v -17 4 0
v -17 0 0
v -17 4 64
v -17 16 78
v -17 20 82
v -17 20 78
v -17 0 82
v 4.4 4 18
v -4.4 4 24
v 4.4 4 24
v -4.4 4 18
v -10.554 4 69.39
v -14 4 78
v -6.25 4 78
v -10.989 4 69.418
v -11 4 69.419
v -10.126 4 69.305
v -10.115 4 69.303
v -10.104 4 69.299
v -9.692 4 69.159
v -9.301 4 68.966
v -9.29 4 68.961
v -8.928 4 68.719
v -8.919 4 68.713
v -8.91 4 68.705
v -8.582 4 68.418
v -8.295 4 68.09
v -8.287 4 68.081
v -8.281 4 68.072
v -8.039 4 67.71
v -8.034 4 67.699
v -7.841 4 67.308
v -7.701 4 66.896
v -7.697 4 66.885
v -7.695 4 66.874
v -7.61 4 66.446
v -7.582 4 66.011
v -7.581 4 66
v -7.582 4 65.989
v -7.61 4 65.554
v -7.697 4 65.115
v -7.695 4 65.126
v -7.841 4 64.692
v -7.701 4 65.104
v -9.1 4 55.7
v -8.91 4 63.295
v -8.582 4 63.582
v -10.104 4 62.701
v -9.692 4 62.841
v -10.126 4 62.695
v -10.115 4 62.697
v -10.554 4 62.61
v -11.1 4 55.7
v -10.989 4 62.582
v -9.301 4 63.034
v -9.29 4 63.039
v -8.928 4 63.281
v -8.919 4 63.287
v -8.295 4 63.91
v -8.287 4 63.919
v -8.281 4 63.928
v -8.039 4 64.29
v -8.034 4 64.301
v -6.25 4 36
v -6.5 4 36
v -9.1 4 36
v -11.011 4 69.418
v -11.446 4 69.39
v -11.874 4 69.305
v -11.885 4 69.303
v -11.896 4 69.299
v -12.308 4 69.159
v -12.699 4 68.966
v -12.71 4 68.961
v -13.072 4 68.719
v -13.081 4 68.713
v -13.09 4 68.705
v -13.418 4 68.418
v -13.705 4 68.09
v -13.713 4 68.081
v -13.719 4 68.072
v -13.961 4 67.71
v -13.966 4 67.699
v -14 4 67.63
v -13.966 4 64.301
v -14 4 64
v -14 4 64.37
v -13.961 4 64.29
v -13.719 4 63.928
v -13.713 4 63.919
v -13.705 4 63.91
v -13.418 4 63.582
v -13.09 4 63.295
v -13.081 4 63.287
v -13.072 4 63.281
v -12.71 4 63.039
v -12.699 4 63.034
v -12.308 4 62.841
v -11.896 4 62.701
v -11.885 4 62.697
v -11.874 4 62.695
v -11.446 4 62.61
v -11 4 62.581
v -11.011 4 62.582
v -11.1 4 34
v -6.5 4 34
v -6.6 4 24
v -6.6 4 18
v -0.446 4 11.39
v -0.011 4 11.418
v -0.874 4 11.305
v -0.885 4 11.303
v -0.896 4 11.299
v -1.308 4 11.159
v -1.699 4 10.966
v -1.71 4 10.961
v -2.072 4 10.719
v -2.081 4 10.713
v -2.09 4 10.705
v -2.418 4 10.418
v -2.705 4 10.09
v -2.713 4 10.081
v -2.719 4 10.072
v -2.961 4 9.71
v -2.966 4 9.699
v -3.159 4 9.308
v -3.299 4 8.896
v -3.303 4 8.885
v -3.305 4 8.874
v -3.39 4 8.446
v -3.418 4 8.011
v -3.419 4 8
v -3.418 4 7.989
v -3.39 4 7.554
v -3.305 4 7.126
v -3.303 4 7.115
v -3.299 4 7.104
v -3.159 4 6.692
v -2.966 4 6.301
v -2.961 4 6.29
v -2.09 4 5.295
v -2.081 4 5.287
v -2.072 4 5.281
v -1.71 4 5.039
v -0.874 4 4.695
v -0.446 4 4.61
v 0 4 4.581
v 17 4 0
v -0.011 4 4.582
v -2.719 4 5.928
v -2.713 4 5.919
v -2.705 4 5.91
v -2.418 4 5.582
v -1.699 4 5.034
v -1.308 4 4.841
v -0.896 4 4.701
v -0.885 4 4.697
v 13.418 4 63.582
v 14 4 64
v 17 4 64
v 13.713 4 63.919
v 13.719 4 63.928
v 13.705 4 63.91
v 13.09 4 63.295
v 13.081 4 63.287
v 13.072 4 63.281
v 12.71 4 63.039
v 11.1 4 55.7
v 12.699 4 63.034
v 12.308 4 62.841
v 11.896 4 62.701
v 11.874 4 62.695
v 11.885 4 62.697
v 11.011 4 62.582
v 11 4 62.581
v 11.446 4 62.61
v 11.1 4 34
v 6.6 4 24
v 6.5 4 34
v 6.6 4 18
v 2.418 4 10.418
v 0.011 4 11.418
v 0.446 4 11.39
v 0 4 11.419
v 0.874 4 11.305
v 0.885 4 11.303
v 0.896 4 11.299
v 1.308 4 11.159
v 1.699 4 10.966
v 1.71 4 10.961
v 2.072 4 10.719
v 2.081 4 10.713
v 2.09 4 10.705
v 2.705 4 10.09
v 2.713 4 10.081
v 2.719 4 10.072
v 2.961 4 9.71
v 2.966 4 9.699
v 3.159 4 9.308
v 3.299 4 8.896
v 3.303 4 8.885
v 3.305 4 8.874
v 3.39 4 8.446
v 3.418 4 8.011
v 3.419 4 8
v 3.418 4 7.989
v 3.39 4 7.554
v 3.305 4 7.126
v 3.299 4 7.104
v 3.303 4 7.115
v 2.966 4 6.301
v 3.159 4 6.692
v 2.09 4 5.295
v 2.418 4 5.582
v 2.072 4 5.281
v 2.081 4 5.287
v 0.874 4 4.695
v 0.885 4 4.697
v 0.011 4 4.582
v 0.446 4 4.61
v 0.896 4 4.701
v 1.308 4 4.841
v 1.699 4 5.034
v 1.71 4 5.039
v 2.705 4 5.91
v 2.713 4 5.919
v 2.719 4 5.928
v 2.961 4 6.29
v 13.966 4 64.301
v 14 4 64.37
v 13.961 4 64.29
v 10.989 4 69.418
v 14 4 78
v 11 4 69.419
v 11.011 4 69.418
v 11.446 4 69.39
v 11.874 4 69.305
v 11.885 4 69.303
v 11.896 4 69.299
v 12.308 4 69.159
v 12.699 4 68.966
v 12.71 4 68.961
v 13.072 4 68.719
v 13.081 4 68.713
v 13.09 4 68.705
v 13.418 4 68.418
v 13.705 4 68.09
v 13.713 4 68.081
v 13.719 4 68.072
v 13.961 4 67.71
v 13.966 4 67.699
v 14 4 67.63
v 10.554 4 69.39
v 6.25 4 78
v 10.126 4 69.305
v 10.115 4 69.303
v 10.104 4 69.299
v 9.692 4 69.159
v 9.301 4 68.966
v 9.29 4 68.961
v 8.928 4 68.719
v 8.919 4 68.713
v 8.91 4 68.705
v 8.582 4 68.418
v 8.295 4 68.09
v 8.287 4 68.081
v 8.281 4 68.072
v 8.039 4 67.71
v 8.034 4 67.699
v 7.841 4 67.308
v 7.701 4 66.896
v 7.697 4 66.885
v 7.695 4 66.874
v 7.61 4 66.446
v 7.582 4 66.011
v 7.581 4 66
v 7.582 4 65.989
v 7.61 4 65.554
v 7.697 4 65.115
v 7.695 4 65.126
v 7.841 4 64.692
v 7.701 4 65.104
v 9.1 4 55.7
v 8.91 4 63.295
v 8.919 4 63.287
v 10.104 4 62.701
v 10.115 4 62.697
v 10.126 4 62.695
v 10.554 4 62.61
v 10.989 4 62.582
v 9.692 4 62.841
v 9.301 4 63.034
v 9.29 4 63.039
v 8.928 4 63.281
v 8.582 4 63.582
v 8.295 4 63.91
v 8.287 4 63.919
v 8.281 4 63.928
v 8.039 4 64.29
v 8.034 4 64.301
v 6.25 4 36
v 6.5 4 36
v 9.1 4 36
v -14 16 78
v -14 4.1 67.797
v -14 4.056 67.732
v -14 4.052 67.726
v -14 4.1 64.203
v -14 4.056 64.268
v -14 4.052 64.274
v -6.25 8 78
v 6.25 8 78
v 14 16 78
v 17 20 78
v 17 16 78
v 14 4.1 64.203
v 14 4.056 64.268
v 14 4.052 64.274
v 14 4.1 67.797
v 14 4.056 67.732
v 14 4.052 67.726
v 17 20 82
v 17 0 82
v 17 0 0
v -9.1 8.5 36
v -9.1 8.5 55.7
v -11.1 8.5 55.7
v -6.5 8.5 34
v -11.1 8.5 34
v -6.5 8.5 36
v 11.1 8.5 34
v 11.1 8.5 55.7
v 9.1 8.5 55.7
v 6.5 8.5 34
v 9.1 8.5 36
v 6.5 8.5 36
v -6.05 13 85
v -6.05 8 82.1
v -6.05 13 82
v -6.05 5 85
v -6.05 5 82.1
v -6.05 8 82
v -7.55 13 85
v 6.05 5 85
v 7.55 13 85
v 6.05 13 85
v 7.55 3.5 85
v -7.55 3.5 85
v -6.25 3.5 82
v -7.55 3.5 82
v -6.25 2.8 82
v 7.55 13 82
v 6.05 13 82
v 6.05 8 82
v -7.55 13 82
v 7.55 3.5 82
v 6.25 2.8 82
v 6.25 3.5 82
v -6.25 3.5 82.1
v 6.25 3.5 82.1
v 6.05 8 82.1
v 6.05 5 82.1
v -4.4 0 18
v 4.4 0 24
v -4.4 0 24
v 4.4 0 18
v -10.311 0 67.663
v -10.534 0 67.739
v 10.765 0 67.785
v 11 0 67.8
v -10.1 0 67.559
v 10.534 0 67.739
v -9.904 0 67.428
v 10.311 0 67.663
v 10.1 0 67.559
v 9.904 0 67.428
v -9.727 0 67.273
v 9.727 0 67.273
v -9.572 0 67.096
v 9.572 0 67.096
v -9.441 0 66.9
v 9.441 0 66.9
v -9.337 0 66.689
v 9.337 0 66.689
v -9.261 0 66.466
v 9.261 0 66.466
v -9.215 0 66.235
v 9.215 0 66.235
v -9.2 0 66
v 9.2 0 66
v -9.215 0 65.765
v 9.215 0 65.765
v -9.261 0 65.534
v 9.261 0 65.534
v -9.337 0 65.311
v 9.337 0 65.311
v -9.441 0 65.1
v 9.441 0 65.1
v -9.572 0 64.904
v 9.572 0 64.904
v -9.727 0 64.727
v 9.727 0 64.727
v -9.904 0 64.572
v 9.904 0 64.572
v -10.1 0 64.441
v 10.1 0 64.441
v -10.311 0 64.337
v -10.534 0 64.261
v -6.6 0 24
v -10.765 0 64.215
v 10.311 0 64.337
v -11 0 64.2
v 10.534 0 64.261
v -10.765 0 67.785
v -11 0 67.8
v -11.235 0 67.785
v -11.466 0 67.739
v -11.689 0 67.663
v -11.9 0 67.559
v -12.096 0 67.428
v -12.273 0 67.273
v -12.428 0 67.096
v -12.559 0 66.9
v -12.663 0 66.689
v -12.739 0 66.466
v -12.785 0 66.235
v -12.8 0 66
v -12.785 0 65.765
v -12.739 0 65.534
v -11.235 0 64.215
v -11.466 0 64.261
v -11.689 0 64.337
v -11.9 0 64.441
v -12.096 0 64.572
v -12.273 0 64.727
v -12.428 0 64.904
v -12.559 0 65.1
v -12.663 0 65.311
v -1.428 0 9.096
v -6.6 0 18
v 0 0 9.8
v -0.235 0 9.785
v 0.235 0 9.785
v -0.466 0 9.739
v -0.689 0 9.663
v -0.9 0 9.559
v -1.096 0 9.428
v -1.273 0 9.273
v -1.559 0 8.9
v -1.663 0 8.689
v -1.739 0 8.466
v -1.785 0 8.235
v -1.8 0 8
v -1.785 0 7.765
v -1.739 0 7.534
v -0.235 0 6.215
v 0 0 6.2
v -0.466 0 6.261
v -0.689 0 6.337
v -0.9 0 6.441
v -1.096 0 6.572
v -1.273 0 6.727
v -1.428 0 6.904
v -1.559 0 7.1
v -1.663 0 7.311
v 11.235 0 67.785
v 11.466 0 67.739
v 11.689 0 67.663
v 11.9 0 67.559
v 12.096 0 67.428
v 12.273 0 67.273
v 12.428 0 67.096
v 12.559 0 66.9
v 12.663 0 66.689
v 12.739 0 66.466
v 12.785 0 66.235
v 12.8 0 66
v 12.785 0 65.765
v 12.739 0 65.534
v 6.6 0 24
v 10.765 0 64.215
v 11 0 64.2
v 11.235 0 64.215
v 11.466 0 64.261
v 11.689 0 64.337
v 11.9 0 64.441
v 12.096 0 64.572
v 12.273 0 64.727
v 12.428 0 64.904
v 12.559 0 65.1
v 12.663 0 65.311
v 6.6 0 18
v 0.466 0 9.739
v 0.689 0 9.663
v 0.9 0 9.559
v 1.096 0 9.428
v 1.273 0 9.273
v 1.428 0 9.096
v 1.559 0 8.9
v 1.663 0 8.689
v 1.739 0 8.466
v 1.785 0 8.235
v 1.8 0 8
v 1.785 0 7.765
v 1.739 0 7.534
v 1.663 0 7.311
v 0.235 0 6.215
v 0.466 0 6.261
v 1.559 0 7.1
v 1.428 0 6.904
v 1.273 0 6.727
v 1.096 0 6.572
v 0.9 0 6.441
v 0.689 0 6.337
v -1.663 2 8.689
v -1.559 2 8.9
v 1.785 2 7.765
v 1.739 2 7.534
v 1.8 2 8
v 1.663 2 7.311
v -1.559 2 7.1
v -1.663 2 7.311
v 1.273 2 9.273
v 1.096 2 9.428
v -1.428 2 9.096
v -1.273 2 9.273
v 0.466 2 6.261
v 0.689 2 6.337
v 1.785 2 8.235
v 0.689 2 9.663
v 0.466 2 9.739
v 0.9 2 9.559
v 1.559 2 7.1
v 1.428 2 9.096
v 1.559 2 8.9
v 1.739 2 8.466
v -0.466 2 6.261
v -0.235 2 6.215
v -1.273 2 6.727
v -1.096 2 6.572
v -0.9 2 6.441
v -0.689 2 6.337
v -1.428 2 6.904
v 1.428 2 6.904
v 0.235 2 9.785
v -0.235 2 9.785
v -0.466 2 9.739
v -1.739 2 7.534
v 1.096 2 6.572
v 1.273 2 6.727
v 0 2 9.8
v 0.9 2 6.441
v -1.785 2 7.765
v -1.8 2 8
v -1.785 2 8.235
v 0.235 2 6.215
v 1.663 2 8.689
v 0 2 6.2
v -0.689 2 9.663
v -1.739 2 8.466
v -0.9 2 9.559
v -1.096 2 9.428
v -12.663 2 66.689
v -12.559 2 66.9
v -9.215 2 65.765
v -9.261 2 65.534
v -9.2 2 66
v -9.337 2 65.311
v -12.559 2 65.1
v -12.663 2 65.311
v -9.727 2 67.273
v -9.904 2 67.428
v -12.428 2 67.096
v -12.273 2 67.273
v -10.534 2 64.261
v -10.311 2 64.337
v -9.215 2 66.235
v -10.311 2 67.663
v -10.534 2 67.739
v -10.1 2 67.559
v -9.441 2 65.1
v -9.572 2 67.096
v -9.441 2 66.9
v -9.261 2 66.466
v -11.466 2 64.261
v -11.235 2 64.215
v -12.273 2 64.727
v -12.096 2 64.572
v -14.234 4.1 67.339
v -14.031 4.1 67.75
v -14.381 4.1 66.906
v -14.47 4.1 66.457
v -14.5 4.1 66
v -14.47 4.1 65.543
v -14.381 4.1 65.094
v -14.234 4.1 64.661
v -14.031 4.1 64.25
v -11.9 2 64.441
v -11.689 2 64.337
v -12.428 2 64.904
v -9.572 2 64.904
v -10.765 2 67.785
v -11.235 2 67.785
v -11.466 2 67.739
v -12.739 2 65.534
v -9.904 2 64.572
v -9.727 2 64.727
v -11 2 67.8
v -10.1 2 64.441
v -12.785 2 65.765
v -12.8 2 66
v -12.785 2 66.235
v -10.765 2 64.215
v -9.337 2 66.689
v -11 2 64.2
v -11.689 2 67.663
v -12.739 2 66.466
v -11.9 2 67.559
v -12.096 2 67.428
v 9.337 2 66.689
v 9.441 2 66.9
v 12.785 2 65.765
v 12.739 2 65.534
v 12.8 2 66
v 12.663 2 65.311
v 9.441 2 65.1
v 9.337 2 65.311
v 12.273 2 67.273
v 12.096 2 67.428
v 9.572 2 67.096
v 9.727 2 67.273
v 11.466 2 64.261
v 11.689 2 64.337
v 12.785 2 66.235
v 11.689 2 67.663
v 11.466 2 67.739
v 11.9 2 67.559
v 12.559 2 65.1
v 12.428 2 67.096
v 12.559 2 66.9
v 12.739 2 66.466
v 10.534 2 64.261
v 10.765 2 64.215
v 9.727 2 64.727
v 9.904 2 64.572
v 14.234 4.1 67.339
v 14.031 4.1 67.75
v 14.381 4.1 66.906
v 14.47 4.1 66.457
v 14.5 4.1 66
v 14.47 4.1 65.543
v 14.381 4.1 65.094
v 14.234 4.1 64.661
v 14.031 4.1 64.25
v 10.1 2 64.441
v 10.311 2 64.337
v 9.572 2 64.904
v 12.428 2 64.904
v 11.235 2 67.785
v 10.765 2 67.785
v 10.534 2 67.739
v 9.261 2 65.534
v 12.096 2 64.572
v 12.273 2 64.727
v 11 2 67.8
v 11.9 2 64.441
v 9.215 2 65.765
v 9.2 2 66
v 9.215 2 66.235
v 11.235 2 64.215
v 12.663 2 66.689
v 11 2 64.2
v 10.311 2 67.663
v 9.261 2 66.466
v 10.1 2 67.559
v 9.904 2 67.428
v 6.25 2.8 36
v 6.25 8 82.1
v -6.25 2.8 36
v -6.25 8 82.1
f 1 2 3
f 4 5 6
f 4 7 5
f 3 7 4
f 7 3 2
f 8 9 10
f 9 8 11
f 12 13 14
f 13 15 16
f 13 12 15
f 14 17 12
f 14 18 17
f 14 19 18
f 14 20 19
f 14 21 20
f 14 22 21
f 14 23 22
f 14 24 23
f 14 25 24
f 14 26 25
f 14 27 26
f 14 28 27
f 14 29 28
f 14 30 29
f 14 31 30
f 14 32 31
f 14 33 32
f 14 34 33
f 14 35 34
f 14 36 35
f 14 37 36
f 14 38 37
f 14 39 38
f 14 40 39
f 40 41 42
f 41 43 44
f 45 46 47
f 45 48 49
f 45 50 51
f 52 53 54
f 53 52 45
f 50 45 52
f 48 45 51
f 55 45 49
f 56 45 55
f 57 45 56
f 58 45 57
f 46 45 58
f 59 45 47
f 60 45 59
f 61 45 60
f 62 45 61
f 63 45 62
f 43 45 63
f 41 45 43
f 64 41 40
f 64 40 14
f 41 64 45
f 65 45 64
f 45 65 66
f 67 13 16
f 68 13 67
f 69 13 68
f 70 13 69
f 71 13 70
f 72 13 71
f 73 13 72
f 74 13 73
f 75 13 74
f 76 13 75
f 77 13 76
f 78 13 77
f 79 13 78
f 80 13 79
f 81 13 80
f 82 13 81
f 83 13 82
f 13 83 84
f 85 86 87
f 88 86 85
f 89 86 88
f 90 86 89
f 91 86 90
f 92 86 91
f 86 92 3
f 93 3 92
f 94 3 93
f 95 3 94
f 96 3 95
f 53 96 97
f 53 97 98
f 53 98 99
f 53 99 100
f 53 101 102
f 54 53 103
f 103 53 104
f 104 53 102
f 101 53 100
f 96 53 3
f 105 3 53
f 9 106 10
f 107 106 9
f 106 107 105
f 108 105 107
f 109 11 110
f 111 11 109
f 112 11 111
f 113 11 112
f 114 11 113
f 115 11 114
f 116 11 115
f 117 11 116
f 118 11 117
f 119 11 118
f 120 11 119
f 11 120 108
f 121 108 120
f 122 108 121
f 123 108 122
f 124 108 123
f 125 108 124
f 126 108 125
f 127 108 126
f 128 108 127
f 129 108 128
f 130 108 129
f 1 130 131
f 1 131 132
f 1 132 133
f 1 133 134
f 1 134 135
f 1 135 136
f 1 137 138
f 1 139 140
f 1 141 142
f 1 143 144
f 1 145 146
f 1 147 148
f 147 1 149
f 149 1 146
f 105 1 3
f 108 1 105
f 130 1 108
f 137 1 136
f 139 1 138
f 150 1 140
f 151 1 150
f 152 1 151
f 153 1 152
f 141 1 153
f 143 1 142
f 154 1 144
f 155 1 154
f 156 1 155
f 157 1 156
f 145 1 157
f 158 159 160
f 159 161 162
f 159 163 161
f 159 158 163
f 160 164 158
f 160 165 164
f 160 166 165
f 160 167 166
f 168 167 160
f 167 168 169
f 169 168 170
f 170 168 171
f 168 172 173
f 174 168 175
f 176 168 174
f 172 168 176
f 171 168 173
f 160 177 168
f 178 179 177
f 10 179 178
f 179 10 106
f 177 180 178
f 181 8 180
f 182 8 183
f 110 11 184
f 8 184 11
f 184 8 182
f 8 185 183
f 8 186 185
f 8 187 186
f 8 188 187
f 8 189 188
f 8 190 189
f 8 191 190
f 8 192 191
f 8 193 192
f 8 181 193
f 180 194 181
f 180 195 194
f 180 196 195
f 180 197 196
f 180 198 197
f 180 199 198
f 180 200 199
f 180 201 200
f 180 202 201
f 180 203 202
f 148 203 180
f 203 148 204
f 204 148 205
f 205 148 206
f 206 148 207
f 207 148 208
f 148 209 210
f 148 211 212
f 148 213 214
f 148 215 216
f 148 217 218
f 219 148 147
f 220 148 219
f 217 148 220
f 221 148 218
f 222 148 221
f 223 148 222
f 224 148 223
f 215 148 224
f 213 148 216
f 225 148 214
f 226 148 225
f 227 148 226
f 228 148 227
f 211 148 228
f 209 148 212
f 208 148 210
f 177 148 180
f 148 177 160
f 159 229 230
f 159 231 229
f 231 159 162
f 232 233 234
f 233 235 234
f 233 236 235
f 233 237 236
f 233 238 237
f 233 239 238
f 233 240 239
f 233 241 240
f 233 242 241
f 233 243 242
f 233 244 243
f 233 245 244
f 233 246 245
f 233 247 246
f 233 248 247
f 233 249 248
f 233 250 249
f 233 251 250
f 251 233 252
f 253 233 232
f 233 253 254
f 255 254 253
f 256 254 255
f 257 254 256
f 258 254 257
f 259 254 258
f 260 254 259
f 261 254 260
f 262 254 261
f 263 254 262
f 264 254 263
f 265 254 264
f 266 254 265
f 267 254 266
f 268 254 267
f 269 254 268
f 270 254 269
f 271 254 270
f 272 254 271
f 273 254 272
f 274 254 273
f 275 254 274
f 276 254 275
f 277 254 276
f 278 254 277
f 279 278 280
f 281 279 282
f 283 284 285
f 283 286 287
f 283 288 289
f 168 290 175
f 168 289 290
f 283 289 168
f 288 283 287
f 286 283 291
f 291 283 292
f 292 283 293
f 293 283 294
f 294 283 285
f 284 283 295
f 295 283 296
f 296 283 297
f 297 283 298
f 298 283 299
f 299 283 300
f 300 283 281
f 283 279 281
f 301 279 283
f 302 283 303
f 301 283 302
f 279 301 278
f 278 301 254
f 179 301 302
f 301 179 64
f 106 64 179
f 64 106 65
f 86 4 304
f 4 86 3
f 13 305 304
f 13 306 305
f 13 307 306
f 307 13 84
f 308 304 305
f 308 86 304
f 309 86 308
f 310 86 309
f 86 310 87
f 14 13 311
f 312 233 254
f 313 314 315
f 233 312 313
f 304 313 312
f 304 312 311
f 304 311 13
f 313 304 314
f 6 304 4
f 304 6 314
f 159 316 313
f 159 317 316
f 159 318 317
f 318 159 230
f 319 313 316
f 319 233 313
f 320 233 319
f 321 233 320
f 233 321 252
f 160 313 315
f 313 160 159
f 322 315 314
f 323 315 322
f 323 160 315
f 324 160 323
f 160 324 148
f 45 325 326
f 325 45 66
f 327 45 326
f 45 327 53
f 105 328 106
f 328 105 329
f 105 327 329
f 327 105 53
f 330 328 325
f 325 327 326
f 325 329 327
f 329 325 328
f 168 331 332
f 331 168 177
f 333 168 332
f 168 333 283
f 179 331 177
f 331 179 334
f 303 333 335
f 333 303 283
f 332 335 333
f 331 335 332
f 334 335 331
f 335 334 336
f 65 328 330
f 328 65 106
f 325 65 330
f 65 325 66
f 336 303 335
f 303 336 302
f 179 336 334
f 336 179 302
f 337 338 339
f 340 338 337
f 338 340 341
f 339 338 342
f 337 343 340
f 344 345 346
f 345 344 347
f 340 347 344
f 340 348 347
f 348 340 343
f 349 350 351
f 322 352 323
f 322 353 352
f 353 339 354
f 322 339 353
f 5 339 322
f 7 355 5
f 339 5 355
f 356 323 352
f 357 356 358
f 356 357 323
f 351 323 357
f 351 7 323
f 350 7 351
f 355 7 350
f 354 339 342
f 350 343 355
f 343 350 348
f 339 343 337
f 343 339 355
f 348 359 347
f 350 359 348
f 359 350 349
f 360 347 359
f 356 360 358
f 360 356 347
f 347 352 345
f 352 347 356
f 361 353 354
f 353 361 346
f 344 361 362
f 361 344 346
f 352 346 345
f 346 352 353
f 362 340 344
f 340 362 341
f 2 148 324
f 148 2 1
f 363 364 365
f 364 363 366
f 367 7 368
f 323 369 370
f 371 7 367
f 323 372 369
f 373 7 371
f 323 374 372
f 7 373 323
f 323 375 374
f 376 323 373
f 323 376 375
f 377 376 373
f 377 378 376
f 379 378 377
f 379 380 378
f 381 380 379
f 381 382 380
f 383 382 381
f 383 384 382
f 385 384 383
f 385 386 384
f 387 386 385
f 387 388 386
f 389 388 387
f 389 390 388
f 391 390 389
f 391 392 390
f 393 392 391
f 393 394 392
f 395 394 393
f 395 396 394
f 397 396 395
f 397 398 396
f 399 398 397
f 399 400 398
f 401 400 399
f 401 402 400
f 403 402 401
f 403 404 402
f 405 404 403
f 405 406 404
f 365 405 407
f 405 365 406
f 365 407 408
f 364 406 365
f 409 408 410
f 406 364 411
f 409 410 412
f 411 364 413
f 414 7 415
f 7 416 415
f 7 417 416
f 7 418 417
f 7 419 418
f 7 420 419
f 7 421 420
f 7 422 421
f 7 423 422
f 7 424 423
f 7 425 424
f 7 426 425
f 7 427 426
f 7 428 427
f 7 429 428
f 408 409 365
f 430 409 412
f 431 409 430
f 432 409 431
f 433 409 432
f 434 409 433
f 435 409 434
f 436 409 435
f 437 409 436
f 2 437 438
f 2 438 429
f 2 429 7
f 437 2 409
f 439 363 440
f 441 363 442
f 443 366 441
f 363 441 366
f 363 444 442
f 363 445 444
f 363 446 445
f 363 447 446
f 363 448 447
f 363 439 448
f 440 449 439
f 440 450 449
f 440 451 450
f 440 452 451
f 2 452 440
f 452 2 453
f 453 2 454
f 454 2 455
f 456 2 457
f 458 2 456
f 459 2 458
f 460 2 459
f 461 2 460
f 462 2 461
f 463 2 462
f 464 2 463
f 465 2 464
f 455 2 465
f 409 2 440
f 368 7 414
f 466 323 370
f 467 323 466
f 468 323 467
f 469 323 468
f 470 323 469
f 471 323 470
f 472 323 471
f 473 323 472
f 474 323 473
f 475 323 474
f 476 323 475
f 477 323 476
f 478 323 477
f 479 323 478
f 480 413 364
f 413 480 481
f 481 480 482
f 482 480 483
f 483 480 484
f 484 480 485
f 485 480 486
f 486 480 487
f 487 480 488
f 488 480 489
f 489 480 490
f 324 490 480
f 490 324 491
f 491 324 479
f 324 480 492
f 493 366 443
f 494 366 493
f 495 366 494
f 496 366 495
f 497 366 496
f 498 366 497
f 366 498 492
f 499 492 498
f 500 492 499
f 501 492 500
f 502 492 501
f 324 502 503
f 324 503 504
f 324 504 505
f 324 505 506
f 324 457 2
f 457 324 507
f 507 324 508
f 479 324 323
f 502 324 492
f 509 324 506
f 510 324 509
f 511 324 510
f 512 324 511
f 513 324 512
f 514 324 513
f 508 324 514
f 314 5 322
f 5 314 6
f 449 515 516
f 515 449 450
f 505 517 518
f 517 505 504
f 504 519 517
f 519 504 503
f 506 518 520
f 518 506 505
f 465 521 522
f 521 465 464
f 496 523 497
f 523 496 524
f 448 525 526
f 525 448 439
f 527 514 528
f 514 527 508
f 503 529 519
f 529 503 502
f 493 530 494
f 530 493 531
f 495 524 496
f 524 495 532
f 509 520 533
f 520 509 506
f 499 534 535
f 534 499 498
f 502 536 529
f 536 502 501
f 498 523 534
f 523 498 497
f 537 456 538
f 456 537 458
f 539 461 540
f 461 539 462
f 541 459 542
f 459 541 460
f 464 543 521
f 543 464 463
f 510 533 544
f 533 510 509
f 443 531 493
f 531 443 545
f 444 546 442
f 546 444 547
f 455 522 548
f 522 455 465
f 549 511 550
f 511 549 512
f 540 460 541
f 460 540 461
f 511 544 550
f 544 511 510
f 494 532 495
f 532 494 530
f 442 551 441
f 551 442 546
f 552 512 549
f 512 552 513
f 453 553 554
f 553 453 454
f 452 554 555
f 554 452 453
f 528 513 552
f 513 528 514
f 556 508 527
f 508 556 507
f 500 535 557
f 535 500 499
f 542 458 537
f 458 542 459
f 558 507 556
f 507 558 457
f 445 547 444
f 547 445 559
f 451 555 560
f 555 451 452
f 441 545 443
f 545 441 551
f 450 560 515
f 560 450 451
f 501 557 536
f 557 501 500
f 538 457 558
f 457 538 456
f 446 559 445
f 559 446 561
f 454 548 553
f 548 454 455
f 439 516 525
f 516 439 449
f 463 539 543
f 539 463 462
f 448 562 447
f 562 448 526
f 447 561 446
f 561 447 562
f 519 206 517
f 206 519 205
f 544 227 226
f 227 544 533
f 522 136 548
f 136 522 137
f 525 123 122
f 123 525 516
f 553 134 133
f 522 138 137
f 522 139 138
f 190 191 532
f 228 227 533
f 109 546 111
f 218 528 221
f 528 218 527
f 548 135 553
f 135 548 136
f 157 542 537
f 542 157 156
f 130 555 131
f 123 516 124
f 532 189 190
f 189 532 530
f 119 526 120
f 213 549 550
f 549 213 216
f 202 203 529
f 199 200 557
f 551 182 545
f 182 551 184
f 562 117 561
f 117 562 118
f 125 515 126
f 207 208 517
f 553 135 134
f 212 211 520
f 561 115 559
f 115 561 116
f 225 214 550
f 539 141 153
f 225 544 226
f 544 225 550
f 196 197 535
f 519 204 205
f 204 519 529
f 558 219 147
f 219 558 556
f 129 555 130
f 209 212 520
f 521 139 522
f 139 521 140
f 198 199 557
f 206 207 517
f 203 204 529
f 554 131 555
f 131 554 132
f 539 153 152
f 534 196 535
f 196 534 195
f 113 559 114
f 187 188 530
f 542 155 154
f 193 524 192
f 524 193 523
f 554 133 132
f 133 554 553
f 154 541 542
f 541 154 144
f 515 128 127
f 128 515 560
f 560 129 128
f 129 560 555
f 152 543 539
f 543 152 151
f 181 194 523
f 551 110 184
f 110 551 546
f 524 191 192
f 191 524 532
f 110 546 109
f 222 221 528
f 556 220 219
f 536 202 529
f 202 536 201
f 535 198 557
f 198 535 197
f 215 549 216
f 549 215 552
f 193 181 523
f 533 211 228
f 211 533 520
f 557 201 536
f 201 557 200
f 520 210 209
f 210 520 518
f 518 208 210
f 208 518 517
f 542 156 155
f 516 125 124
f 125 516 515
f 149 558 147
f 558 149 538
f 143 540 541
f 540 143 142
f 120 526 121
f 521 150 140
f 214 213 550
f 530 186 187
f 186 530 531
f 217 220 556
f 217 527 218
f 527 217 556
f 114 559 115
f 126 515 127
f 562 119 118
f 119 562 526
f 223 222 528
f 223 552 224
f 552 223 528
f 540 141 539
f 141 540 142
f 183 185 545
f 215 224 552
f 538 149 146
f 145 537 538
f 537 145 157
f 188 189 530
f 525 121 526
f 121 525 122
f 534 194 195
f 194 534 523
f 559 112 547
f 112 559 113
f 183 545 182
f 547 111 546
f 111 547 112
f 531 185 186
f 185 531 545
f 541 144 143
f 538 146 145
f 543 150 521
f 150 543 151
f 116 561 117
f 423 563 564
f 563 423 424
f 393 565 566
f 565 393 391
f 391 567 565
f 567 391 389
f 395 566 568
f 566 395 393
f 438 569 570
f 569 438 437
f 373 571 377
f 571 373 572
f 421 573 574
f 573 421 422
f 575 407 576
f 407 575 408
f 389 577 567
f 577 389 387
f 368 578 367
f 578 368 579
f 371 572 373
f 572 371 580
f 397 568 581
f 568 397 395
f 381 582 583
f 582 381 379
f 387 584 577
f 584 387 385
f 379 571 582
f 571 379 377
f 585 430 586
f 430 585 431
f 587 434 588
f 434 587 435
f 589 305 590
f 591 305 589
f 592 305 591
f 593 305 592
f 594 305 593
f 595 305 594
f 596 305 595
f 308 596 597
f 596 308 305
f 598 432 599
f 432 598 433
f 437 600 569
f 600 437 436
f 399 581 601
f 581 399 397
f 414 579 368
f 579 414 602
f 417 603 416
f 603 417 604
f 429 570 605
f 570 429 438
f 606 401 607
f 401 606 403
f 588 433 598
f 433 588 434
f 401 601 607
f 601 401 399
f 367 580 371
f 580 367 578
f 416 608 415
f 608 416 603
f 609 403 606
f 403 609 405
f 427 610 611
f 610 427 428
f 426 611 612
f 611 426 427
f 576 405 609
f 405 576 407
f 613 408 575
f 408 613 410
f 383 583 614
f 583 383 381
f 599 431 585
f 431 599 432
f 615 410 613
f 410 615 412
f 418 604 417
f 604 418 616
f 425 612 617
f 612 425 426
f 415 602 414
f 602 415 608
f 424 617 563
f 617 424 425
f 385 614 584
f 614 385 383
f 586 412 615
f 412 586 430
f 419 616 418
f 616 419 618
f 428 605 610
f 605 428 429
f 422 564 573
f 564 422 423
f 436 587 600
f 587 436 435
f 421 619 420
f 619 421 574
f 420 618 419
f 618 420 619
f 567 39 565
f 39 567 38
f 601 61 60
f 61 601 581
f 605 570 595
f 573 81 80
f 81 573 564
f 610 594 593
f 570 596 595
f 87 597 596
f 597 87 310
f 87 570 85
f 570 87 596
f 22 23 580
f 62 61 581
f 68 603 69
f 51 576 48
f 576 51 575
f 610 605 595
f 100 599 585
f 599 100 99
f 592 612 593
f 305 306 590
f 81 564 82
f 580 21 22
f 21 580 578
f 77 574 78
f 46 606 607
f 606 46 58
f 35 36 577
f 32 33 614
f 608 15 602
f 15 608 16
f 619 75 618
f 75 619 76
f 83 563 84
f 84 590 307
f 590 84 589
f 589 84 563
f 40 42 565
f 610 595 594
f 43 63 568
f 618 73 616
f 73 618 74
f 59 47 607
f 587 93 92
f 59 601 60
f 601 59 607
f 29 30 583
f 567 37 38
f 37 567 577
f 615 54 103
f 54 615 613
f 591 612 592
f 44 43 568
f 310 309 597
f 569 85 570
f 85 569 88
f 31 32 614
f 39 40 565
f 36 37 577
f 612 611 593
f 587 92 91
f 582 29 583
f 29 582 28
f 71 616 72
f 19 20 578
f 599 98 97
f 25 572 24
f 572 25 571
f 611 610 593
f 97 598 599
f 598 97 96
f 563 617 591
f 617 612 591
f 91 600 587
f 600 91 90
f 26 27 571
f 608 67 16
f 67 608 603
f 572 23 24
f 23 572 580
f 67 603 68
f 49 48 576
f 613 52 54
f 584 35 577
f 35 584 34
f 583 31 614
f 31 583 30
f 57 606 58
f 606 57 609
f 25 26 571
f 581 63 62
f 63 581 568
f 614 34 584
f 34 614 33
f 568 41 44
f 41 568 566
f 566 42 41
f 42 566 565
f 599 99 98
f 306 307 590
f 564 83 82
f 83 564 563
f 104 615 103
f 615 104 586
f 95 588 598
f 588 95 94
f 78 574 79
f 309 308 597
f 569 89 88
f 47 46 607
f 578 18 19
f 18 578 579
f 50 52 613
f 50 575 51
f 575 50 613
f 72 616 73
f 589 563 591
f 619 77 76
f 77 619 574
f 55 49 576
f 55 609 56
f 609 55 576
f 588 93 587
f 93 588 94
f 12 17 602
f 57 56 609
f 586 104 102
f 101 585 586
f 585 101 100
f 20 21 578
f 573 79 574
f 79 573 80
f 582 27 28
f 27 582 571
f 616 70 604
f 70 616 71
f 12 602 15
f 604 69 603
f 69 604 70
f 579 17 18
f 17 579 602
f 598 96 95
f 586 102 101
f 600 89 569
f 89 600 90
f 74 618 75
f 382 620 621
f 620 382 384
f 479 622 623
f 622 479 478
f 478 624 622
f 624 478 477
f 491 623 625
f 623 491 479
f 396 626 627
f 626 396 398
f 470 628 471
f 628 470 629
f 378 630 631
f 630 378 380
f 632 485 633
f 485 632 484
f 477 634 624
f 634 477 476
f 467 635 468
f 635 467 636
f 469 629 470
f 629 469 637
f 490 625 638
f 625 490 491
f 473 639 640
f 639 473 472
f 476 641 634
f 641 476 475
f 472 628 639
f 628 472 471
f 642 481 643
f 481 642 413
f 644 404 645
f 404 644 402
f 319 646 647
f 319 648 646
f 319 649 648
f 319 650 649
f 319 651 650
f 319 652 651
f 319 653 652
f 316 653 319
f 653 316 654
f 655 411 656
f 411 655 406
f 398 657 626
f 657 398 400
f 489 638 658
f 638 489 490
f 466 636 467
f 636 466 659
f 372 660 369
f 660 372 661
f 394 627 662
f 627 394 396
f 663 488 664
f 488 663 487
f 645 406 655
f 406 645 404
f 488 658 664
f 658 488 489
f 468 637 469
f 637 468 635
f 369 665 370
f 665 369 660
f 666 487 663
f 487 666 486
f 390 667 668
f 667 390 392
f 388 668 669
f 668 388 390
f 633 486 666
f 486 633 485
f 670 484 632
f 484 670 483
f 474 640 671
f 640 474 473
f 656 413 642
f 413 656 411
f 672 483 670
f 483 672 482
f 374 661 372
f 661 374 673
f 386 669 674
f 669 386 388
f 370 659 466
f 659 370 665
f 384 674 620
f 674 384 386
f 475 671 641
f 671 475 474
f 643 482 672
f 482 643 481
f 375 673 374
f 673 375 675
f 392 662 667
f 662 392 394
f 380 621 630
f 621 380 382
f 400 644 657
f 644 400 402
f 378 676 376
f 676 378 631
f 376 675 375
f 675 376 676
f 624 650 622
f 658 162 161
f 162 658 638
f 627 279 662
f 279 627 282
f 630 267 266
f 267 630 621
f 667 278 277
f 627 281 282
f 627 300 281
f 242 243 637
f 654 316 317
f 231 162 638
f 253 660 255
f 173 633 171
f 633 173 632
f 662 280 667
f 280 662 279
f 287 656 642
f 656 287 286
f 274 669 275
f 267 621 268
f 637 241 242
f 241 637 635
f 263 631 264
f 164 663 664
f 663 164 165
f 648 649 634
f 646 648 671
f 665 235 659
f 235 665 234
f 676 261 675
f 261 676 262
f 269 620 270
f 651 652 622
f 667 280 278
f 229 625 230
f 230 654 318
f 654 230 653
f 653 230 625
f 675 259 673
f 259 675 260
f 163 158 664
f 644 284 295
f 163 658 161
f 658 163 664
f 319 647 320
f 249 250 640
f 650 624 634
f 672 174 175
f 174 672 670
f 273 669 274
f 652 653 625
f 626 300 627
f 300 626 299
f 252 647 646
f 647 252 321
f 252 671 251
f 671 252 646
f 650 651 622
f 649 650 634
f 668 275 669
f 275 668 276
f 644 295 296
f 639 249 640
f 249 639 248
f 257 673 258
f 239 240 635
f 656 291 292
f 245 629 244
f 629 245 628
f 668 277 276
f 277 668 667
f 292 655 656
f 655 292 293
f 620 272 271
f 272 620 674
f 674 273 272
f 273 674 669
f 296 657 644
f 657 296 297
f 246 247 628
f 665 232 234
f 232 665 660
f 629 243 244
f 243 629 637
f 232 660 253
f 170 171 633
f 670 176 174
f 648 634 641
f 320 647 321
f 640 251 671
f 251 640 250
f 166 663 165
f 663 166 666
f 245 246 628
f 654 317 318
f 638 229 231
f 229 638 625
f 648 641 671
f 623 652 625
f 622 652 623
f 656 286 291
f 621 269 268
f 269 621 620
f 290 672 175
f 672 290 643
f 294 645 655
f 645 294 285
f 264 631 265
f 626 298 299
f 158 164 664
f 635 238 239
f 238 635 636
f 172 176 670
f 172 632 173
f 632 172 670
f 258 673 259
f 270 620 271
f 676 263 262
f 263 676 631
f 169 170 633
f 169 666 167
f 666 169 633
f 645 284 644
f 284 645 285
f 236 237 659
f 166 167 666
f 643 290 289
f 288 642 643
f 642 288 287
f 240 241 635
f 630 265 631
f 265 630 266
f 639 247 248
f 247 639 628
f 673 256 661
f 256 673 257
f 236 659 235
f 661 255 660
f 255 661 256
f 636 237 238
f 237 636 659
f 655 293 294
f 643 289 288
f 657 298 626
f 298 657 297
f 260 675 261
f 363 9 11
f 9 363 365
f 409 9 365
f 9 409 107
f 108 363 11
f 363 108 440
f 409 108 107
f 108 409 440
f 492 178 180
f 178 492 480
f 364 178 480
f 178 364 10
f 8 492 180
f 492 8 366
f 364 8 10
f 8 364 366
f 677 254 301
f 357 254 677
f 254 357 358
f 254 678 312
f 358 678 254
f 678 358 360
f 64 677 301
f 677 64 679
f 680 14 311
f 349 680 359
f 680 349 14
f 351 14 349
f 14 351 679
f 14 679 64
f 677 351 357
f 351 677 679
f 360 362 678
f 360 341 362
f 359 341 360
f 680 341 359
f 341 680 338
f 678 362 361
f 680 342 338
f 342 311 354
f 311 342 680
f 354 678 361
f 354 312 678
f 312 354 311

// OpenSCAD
// file: common.scad
// 共通パラメータ: M5Stamp C5 / M5Stamp UWB F の公称寸法(mm)
// 出典: shop.m5stack.com 製品ページ(2026-08 時点)
//   M5Stamp C5:     17.6 x 19.1 x 3.4 mm
//   M5Stamp UWB F:  11.5 x 12.0 x 2.8 mm(PCB アンテナ内蔵・背面 FPC コネクタ)
// 注意: 公称値ベースの v1 モデル。印刷後に実機でフィット確認し、tol を調整すること。

c5_w = 17.6;   // C5 幅
c5_l = 19.1;   // C5 長さ(USB-C は短辺側と想定)
c5_t = 3.4;    // C5 厚み

uwb_w = 11.5;  // UWB F 幅
uwb_l = 12.0;  // UWB F 長さ(片端がアンテナ部)
uwb_t = 2.8;   // UWB F 厚み

tol = 0.3;     // 片側クリアランス(ポケット寸法 = 部品寸法 + 2*tol)

fpc_w = 12.5;  // FPC ケーブル幅(0.5mm-12P + 余裕)

$fn = 48;

// ざぐり付きネジ穴(皿ネジ M3 想定)。h = 板厚
module screw_hole(h, d = 3.6, head_d = 7, head_h = 2) {
    translate([0, 0, -0.1]) cylinder(d = d, h = h + 0.2);
    translate([0, 0, h - head_h]) cylinder(d1 = d, d2 = head_d, h = head_h + 0.1);
}
// main file
// アンカー取付具(壁面・柱用 L ブラケット)
// - 垂直プレートを壁にネジ 3 本(皿 M3)で固定
// - プレート前面のポケットに M5Stamp C5、上部棚の上面ポケットに Stamp UWB F を置く
//   (固定は薄手の両面テープを想定)
// - UWB F のアンテナ端は棚の前縁側(壁と反対)を向き、前方に壁・部材が無い
// - FPC ケーブルはプレート前面の溝 → 棚のスリットを通して両ボードの背面コネクタへ
// 座標系は設置姿勢(y=0 が壁面、+y が壁から離れる向き、+z が上)
// 印刷時は背面(y=0 面)をベッドに向けて水平に寝かせる(サポート不要)

include <common.scad>

preview = false;  // true でプレビュー用に前面(ポケット側)をカメラへ向ける

plate_w = 34;    // プレート幅
plate_h = 78;    // プレート高さ
plate_t = 4;     // プレート厚
shelf_d = 20;    // 棚の奥行き(壁から)
shelf_t = 4;     // 棚厚
pock_wall = 2;   // C5 ポケット壁厚
pock_h = 4.5;    // C5 ポケット壁高さ
uwb_wall = 1.5;  // UWB ポケット壁厚
uwb_wall_h = 3;  // UWB ポケット壁高さ
chan_d = 1.2;    // FPC 溝深さ

c5_px = c5_w + 2 * tol;   // C5 ポケット内寸(幅)
c5_pz = c5_l + 2 * tol;   // C5 ポケット内寸(高さ)
c5_z0 = 36;               // C5 ポケット下端の高さ
uwb_px = uwb_w + 2 * tol;
uwb_py = uwb_l + 2 * tol;
uwb_y0 = 5;               // UWB モジュール後端(壁側)の y 位置

module anchor_mount() {
    difference() {
        union() {
            // 垂直プレート
            cube_c([plate_w, plate_t, plate_h], cx = true);
            // 上部棚
            translate([0, 0, plate_h]) cube_c([plate_w, shelf_d, shelf_t], cx = true);
            // ガセット(棚の補強) x2
            for (sx = [-1, 1])
                translate([sx * plate_w / 2 - (sx < 0 ? 0 : 3), 0, 0])
                    gusset();
            // C5 ポケット壁(上辺なし・下辺は USB 用に中央が開く)
            translate([0, plate_t, 0]) c5_pocket_walls();
            // UWB ポケット壁(前辺なし = アンテナ側オープン)
            translate([0, 0, plate_h + shelf_t]) uwb_pocket_walls();
        }
        // ネジ穴(皿 M3): 下 1 + 上 2。ざぐりは前面(+y)側
        for (p = [[0, 8], [-11, 66], [11, 66]])
            translate([p[0], 0, p[1]]) rotate([-90, 0, 0]) screw_hole(plate_t);
        // FPC 溝(プレート前面、C5 ポケット床から上端まで)
        translate([-fpc_w / 2, plate_t - chan_d, c5_z0]) cube([fpc_w, chan_d + 0.1, plate_h - c5_z0 + 0.1]);
        // FPC スリット(棚を貫通し UWB モジュール後端の下へ)
        translate([-fpc_w / 2, plate_t - chan_d, plate_h - 0.1]) cube([fpc_w, 8 - (plate_t - chan_d), shelf_t + 0.2]);
        // ケーブルタイ用スリット x2(USB ケーブルの張力止め)
        for (sx = [-1, 1])
            translate([sx * 5.5 - 1.1, -0.1, 18]) cube([2.2, plate_t + 0.2, 6]);
    }
}

// 中央下端揃えの cube
module cube_c(size, cx = false) {
    translate([cx ? -size[0] / 2 : 0, 0, 0]) cube(size);
}

module gusset() {
    rotate([90, 0, 90]) linear_extrude(3)
        polygon([[plate_t, plate_h], [16, plate_h], [plate_t, plate_h - 14]]);
}

module c5_pocket_walls() {
    ox = c5_px / 2 + pock_wall;    // 外周半幅
    usb_gap = 13;
    // 側壁
    for (sx = [-1, 1])
        translate([sx * c5_px / 2 - (sx < 0 ? pock_wall : 0), 0, c5_z0 - pock_wall])
            cube([pock_wall, pock_h, c5_pz + pock_wall]);
    // 下壁(中央 usb_gap を開ける)
    for (sx = [-1, 1])
        translate([sx < 0 ? -ox : usb_gap / 2, 0, c5_z0 - pock_wall])
            cube([ox - usb_gap / 2, pock_h, pock_wall]);
}

module uwb_pocket_walls() {
    // 後壁(壁側)
    translate([-uwb_px / 2 - uwb_wall, uwb_y0 - uwb_wall, 0])
        cube([uwb_px + 2 * uwb_wall, uwb_wall, uwb_wall_h]);
    // 側壁(後半のみ。前方 = アンテナ側はオープン)
    for (sx = [-1, 1])
        translate([sx * uwb_px / 2 - (sx < 0 ? uwb_wall : 0), uwb_y0 - uwb_wall, 0])
            cube([uwb_wall, 8 + uwb_wall, uwb_wall_h]);
}

if (preview) rotate([0, 0, 180]) anchor_mount();
else anchor_mount();
